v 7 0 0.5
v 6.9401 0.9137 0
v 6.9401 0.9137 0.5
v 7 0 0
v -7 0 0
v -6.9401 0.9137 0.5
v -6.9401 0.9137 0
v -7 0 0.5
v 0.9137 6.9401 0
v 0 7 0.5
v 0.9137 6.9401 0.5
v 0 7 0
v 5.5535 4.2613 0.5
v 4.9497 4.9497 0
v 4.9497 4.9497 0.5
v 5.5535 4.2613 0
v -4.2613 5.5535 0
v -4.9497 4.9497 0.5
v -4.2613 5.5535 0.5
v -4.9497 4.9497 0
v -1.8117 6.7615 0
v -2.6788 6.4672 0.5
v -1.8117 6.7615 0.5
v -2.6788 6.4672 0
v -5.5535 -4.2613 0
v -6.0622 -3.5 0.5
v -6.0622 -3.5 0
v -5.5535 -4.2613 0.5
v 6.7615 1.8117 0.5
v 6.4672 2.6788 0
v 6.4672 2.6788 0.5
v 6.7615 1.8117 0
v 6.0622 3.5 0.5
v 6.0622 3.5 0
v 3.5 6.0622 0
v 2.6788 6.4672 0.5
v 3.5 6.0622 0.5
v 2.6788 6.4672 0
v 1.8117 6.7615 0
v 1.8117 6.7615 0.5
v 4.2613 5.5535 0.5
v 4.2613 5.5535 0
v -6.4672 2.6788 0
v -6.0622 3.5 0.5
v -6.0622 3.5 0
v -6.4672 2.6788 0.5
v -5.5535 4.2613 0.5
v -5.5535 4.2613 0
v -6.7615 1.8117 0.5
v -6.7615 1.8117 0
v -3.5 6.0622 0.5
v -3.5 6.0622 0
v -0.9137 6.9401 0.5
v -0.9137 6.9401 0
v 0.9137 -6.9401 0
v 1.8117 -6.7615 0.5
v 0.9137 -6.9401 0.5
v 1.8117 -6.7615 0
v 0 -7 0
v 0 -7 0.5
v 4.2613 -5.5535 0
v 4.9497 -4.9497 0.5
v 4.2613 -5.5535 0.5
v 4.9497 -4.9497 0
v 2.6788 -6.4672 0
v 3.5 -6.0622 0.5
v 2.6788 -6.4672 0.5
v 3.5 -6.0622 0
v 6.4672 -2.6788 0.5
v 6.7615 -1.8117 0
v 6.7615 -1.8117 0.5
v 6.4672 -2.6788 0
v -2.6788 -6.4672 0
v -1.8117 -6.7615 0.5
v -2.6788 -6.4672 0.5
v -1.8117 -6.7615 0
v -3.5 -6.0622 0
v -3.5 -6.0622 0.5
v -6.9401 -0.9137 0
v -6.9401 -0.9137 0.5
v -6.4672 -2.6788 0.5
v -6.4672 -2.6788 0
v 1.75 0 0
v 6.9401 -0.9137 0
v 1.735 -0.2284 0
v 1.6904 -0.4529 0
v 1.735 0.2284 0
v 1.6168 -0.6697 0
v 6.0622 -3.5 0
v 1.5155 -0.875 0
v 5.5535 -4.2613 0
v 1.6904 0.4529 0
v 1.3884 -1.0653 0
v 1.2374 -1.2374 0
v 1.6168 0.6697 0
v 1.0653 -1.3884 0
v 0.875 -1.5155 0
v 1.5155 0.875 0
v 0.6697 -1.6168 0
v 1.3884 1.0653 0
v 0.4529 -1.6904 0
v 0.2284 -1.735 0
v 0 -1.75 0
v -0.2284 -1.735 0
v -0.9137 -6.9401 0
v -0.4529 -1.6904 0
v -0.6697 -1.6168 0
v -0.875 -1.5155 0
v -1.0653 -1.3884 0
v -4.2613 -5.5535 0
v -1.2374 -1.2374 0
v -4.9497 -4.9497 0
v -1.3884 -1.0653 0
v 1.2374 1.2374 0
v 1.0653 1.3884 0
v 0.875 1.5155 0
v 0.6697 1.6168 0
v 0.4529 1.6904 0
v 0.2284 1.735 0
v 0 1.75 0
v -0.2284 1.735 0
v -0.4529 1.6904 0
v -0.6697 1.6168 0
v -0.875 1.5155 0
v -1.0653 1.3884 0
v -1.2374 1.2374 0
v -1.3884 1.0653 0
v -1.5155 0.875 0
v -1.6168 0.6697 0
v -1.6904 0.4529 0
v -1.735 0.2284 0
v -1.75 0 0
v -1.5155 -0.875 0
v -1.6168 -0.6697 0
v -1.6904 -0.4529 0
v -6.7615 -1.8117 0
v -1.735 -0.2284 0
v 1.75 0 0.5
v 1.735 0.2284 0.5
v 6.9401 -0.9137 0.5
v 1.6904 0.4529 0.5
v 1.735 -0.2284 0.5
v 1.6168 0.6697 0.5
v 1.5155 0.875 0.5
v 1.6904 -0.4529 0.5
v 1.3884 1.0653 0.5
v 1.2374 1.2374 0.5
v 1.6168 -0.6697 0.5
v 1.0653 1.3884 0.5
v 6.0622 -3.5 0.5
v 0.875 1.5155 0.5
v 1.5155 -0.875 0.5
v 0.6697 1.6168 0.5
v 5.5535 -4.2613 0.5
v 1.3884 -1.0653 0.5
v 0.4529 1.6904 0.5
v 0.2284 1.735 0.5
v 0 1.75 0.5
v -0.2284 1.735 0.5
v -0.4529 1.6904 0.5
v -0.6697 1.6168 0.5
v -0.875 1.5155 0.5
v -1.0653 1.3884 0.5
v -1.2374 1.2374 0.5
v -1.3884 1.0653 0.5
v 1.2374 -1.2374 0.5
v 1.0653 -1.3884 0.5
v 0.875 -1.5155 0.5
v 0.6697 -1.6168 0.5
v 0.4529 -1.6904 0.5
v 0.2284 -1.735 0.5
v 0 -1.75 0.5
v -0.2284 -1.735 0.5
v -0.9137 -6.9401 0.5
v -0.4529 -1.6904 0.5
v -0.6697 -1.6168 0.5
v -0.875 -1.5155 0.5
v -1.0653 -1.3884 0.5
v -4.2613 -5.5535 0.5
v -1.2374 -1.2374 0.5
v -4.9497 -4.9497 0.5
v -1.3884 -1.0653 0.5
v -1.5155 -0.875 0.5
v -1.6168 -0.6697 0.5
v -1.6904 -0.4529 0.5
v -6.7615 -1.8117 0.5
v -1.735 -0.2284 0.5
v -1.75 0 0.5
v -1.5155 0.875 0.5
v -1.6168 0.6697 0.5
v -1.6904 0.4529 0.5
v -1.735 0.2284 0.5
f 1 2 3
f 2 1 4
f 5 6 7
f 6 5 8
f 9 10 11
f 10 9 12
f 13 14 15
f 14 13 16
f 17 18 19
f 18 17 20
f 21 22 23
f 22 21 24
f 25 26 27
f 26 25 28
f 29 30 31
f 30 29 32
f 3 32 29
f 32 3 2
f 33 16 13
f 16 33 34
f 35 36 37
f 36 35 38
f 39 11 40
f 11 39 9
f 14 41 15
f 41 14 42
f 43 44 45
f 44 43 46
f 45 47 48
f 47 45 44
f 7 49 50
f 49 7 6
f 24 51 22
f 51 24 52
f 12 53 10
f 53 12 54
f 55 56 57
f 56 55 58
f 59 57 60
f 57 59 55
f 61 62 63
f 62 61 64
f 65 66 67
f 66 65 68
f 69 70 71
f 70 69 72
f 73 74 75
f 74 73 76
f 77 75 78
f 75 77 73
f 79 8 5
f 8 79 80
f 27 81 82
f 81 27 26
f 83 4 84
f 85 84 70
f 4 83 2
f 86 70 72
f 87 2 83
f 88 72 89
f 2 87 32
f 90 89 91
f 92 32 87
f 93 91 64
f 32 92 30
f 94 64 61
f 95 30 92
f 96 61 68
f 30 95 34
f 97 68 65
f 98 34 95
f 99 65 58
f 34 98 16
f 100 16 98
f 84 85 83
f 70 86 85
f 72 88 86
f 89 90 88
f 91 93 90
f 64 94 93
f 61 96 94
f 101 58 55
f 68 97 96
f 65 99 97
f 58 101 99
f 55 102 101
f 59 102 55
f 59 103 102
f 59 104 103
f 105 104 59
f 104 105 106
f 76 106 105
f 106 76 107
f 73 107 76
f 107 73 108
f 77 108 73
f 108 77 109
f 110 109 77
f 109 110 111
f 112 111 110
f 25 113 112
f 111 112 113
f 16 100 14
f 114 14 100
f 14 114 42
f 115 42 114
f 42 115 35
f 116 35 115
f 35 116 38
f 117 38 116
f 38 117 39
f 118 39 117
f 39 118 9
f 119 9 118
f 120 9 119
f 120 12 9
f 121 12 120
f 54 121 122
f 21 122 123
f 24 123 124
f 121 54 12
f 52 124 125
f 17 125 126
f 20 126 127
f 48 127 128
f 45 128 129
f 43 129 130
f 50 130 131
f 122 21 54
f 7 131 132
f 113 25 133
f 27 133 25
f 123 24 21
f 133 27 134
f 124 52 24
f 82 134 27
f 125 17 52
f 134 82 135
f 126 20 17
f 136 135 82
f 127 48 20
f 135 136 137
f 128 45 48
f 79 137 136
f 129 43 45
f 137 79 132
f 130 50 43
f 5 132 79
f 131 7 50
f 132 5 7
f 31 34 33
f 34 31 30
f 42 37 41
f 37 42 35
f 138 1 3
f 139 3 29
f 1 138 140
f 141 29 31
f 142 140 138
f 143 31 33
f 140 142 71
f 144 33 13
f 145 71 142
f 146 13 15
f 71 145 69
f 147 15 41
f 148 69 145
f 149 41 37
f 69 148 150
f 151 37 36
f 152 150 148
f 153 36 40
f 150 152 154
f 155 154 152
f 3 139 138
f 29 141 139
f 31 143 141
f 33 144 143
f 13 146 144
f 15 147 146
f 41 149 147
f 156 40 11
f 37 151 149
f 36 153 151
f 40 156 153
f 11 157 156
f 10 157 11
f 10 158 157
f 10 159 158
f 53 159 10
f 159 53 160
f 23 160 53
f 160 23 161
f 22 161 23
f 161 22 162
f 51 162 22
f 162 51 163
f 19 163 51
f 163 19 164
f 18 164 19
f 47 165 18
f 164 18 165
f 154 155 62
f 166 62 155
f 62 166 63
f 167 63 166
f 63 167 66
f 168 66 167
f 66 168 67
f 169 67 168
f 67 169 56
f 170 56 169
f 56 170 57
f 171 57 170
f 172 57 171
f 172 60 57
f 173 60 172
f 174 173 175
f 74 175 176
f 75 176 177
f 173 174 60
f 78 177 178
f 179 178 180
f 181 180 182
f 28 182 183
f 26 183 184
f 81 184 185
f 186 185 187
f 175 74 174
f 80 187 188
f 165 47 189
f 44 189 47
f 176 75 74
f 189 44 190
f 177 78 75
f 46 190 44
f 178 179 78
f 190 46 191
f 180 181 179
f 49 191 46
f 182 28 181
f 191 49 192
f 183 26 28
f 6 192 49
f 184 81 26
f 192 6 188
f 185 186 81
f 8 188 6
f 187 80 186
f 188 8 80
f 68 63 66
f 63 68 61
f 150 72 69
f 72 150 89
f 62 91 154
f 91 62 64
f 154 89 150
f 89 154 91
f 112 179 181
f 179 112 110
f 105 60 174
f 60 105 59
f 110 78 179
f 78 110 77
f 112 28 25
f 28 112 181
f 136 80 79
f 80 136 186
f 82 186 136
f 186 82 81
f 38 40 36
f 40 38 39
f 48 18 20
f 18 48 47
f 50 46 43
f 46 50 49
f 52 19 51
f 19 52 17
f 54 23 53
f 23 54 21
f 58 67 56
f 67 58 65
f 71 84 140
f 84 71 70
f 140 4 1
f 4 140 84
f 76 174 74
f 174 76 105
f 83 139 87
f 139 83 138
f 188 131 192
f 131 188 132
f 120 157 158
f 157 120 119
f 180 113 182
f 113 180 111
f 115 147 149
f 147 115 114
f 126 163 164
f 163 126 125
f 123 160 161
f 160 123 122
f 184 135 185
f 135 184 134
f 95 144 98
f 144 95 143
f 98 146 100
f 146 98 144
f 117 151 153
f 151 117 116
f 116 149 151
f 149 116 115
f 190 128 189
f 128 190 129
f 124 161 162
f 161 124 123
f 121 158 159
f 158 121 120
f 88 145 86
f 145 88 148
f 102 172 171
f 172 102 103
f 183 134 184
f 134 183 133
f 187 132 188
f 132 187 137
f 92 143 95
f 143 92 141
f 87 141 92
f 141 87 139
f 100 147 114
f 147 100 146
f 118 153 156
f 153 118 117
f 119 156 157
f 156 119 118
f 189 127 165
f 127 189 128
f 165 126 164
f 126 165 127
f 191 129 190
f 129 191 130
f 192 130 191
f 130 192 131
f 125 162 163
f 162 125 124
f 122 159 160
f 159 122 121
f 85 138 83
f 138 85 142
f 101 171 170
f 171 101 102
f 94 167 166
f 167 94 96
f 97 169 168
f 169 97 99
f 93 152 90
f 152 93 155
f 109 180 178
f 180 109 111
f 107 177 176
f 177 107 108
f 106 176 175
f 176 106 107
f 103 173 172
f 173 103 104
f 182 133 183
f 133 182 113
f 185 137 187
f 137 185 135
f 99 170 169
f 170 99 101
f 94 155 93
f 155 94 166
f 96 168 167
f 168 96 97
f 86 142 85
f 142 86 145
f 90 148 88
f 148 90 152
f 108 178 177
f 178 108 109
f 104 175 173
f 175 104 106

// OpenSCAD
// file: parameters.scad
// =============================================================================
// Gen-BX — nightly 2026-10-11 (physics_scorer, honest magpylib watts)
// Gap reduction paid for by a bigger ring: the Gen-BU 8p/12c layout with the copper cut from 8.1 to 6.75 mm (magnet face to magnet face 10.70 → 9.35 mm, so Bz at the copper rises) and the lost window area won back radially, with the poles moved out to R71 and the bobbins stretched to r53–88. The scans show the thin-copper optimum only appears on the bigger ring (on R66 it gains far less), and R71 / Ø194 stator is the largest machine that still packs on one 410 mm plate.
// Clocking 0 deg (magnets N facing S) + D-flat keyed bore + index notch + flip-symmetric hole map.
// Windable 2-piece bobbin; turns = physics_scorer turns_fit; copper only between flanges.
// Steel back-iron: 2× Ø168 × 4.76 mm (3/16") mild-steel discs (steel_backiron_disc.dxf); magnets sit ON the steel
// (through-pockets) -> score with --back-iron. Night 2026-10-11.
// =============================================================================
topology            = "dual_rotor";

// --- Wire / winding (physics_scorer winding-fit) -------------------------------
wire_awg            = 26;
wire_od             = 0.45;     // insulated OD mm (bare 0.405)
fill_realistic      = 0.65;     // insulated-wire area / window (DENSE layered wind with a jig; scorer cap 0.65)
turns               = 410;       // = physics_scorer turns_fit (do NOT raise)
coil_former_type    = "bobbin";
coil_core_inset     = 14.87;     // radial copper build: hub = copper boundary inset by this
wind_build_axial    = 0.0;      // nothing proud of the flanges
wind_build_radial   = 0.0;

// --- Bobbin (base + lid) ---------------------------------------------------------
coil_id_r           = 53.00;    // copper boundary sector
coil_od_r           = 88.00;
span_deg            = 26.43;    // = pitch - 2*asin((wall+0.85)/coil_id_r) -> >=1.2 mm stator web
former_web          = 6.75;     // copper height between flanges (TALL copper: steel keeps Bz up)
flange_t            = 0.80;     // >= 0.8 mm FDM wall rule (tall winds push on the flanges)
wall                = 0.80;     // flange lip beyond copper
former_bare_h       = former_web + 2 * flange_t;
coil_envelope_h     = former_bare_h + 2 * wind_build_axial;
tab_w               = 7.0;
tab_len             = 7.0;
tab_h               = former_bare_h / 2;
pin_d               = 1.9;      // 1.75 mm filament locating pin
coil_mount_r        = coil_od_r + 0.2 + 4.0;
lead_y              = 1.6;
lead_slot_w         = 0.9;
lead_groove_d       = 0.6;

// --- Gap -------------------------------------------------------------------------
run_clear           = 0.50;     // rotor face -> flange
gap_spacer_h        = run_clear + wind_build_axial;
m2m                 = coil_envelope_h + 2 * run_clear;   // rotor face to rotor face (= gap_sleeve length)

// --- Stator ----------------------------------------------------------------------
coil_stations       = 12;
bay_clear           = 0.25;
stator_thick        = former_bare_h;                        // bobbins flush both faces
stator_od           = 194;
shaft_clear_stator  = 14.0;     // stator is static; gap sleeve OD 12 spins inside

// --- Rotor(s) --------------------------------------------------------------------
magnet_Br           = 1.43;     // N52
magnet_d_large      = 20.0;
magnet_h_large      = 5.0;      // one O20x5 per pocket
magnet_h_small      = 5.0;      // unused: no O5 pockets in this kit
halbach_magnetisation = "none";  // NO O5 assist magnets in this kit (scan: they lower the 4-pole score)
rotor_b_same_axis   = true;     // same-index magnets share one axis: N faces S across the gap
large_pocket_d      = 20.3;
small_pocket_d      = 5.3;
pocket_h            = 5.00;     // THROUGH the carrier: magnet back face sits on the steel disc (FLUSH seat: carrier = magnet height, magnet face level with the rotor face)
large_n             = 8;
R_large             = 71.0;
small_r_list        = [];       // no O5 pockets
carrier_od          = 168.0;
carrier_thick       = pocket_h;
hub_h               = 12.0;     // > steel_t + insert: radial set-screw clears the steel
hub_od              = 24.0;     // slim hub so the M4 brace rods fit at R~18 inside the coil ring
hub_insert_d        = 4.0;      // M3 heat-set insert, radial, bears on the D-flat
rotor_b_offset_deg  = 0.0;      // CLOCKING: magnets directly opposite
shaft_key           = "dflat";
dflat_depth         = 0.5;      // 8 mm shaft with 0.5 mm flat (7.5 across flat)
index_notch_d       = 3.0;

// --- Steel back-iron (buyable laser-cut) -------------------------------------------
steel_t             = 4.76;      // mild steel thickness (image method ignores it; sized from steel_flux.py so the return path stays well below saturation)
steel_center_hole   = 26.0;     // slips over the rotor hub (OD 24)
steel_od            = carrier_od;   // steel disc OD = rotor carrier OD

// --- Modular MAX interface ----------------------------------------------------------
shaft_bore          = 8.35;
dflat_x             = 4.0 - dflat_depth + (shaft_bore - 8.0) / 2;
bearing_d           = 21.85;
bearing_h           = 7.2;
m3_clear            = 3.5;
bolt_r_inner        = 30.0;     // M3 steel-disc clamp bolts (inside the magnet ring)
bolt_n_inner        = 4;
bolt_inner_angles   = [0, 90, 180, 270];
bolt_r_outer        = 44.0;     // second M3 steel-disc clamp ring
bolt_outer_angles   = [67.5, 112.5, 247.5, 292.5];
flange_bolt_r       = 91.5;     // frame rods: OUTSIDE the rotor OD (rotors spin inside them)
flange_bolt_n       = 4;
flange_bolt_offset  = 45.00;    // between coil stations -> never cuts a lead groove/tab
brace_r             = 18.0;
brace_d             = 4.3;      // temporary M4 jack rods (assembly only)
brace_n             = 4;
brace_angles        = [45, 135, 225, 315];          // flip-symmetric

spacer_pad_od       = 14.0;
spacer_pad_id       = m3_clear;
endbell_od          = 193.0;
endbell_thick       = 8.0;
endbell_shaft_clear = 10.0;
collar_h            = 10.0;
standoff_od         = 9.0;
frame_standoff_h    = run_clear + carrier_thick + hub_h + collar_h + 2.0;
sleeve_od           = 12.0;
plate_max_mm        = 410;

$fn = 64;
// main file
// Gen-BX — assembly gap shim, h = run_clear (rotor face -> flange); copper is inside the flanges
include <parameters.scad>;
$fn = 48;
difference() {
    cylinder(d=spacer_pad_od, h=gap_spacer_h);
    translate([0, 0, -0.1]) cylinder(d=spacer_pad_id, h=gap_spacer_h + 0.2);
}
